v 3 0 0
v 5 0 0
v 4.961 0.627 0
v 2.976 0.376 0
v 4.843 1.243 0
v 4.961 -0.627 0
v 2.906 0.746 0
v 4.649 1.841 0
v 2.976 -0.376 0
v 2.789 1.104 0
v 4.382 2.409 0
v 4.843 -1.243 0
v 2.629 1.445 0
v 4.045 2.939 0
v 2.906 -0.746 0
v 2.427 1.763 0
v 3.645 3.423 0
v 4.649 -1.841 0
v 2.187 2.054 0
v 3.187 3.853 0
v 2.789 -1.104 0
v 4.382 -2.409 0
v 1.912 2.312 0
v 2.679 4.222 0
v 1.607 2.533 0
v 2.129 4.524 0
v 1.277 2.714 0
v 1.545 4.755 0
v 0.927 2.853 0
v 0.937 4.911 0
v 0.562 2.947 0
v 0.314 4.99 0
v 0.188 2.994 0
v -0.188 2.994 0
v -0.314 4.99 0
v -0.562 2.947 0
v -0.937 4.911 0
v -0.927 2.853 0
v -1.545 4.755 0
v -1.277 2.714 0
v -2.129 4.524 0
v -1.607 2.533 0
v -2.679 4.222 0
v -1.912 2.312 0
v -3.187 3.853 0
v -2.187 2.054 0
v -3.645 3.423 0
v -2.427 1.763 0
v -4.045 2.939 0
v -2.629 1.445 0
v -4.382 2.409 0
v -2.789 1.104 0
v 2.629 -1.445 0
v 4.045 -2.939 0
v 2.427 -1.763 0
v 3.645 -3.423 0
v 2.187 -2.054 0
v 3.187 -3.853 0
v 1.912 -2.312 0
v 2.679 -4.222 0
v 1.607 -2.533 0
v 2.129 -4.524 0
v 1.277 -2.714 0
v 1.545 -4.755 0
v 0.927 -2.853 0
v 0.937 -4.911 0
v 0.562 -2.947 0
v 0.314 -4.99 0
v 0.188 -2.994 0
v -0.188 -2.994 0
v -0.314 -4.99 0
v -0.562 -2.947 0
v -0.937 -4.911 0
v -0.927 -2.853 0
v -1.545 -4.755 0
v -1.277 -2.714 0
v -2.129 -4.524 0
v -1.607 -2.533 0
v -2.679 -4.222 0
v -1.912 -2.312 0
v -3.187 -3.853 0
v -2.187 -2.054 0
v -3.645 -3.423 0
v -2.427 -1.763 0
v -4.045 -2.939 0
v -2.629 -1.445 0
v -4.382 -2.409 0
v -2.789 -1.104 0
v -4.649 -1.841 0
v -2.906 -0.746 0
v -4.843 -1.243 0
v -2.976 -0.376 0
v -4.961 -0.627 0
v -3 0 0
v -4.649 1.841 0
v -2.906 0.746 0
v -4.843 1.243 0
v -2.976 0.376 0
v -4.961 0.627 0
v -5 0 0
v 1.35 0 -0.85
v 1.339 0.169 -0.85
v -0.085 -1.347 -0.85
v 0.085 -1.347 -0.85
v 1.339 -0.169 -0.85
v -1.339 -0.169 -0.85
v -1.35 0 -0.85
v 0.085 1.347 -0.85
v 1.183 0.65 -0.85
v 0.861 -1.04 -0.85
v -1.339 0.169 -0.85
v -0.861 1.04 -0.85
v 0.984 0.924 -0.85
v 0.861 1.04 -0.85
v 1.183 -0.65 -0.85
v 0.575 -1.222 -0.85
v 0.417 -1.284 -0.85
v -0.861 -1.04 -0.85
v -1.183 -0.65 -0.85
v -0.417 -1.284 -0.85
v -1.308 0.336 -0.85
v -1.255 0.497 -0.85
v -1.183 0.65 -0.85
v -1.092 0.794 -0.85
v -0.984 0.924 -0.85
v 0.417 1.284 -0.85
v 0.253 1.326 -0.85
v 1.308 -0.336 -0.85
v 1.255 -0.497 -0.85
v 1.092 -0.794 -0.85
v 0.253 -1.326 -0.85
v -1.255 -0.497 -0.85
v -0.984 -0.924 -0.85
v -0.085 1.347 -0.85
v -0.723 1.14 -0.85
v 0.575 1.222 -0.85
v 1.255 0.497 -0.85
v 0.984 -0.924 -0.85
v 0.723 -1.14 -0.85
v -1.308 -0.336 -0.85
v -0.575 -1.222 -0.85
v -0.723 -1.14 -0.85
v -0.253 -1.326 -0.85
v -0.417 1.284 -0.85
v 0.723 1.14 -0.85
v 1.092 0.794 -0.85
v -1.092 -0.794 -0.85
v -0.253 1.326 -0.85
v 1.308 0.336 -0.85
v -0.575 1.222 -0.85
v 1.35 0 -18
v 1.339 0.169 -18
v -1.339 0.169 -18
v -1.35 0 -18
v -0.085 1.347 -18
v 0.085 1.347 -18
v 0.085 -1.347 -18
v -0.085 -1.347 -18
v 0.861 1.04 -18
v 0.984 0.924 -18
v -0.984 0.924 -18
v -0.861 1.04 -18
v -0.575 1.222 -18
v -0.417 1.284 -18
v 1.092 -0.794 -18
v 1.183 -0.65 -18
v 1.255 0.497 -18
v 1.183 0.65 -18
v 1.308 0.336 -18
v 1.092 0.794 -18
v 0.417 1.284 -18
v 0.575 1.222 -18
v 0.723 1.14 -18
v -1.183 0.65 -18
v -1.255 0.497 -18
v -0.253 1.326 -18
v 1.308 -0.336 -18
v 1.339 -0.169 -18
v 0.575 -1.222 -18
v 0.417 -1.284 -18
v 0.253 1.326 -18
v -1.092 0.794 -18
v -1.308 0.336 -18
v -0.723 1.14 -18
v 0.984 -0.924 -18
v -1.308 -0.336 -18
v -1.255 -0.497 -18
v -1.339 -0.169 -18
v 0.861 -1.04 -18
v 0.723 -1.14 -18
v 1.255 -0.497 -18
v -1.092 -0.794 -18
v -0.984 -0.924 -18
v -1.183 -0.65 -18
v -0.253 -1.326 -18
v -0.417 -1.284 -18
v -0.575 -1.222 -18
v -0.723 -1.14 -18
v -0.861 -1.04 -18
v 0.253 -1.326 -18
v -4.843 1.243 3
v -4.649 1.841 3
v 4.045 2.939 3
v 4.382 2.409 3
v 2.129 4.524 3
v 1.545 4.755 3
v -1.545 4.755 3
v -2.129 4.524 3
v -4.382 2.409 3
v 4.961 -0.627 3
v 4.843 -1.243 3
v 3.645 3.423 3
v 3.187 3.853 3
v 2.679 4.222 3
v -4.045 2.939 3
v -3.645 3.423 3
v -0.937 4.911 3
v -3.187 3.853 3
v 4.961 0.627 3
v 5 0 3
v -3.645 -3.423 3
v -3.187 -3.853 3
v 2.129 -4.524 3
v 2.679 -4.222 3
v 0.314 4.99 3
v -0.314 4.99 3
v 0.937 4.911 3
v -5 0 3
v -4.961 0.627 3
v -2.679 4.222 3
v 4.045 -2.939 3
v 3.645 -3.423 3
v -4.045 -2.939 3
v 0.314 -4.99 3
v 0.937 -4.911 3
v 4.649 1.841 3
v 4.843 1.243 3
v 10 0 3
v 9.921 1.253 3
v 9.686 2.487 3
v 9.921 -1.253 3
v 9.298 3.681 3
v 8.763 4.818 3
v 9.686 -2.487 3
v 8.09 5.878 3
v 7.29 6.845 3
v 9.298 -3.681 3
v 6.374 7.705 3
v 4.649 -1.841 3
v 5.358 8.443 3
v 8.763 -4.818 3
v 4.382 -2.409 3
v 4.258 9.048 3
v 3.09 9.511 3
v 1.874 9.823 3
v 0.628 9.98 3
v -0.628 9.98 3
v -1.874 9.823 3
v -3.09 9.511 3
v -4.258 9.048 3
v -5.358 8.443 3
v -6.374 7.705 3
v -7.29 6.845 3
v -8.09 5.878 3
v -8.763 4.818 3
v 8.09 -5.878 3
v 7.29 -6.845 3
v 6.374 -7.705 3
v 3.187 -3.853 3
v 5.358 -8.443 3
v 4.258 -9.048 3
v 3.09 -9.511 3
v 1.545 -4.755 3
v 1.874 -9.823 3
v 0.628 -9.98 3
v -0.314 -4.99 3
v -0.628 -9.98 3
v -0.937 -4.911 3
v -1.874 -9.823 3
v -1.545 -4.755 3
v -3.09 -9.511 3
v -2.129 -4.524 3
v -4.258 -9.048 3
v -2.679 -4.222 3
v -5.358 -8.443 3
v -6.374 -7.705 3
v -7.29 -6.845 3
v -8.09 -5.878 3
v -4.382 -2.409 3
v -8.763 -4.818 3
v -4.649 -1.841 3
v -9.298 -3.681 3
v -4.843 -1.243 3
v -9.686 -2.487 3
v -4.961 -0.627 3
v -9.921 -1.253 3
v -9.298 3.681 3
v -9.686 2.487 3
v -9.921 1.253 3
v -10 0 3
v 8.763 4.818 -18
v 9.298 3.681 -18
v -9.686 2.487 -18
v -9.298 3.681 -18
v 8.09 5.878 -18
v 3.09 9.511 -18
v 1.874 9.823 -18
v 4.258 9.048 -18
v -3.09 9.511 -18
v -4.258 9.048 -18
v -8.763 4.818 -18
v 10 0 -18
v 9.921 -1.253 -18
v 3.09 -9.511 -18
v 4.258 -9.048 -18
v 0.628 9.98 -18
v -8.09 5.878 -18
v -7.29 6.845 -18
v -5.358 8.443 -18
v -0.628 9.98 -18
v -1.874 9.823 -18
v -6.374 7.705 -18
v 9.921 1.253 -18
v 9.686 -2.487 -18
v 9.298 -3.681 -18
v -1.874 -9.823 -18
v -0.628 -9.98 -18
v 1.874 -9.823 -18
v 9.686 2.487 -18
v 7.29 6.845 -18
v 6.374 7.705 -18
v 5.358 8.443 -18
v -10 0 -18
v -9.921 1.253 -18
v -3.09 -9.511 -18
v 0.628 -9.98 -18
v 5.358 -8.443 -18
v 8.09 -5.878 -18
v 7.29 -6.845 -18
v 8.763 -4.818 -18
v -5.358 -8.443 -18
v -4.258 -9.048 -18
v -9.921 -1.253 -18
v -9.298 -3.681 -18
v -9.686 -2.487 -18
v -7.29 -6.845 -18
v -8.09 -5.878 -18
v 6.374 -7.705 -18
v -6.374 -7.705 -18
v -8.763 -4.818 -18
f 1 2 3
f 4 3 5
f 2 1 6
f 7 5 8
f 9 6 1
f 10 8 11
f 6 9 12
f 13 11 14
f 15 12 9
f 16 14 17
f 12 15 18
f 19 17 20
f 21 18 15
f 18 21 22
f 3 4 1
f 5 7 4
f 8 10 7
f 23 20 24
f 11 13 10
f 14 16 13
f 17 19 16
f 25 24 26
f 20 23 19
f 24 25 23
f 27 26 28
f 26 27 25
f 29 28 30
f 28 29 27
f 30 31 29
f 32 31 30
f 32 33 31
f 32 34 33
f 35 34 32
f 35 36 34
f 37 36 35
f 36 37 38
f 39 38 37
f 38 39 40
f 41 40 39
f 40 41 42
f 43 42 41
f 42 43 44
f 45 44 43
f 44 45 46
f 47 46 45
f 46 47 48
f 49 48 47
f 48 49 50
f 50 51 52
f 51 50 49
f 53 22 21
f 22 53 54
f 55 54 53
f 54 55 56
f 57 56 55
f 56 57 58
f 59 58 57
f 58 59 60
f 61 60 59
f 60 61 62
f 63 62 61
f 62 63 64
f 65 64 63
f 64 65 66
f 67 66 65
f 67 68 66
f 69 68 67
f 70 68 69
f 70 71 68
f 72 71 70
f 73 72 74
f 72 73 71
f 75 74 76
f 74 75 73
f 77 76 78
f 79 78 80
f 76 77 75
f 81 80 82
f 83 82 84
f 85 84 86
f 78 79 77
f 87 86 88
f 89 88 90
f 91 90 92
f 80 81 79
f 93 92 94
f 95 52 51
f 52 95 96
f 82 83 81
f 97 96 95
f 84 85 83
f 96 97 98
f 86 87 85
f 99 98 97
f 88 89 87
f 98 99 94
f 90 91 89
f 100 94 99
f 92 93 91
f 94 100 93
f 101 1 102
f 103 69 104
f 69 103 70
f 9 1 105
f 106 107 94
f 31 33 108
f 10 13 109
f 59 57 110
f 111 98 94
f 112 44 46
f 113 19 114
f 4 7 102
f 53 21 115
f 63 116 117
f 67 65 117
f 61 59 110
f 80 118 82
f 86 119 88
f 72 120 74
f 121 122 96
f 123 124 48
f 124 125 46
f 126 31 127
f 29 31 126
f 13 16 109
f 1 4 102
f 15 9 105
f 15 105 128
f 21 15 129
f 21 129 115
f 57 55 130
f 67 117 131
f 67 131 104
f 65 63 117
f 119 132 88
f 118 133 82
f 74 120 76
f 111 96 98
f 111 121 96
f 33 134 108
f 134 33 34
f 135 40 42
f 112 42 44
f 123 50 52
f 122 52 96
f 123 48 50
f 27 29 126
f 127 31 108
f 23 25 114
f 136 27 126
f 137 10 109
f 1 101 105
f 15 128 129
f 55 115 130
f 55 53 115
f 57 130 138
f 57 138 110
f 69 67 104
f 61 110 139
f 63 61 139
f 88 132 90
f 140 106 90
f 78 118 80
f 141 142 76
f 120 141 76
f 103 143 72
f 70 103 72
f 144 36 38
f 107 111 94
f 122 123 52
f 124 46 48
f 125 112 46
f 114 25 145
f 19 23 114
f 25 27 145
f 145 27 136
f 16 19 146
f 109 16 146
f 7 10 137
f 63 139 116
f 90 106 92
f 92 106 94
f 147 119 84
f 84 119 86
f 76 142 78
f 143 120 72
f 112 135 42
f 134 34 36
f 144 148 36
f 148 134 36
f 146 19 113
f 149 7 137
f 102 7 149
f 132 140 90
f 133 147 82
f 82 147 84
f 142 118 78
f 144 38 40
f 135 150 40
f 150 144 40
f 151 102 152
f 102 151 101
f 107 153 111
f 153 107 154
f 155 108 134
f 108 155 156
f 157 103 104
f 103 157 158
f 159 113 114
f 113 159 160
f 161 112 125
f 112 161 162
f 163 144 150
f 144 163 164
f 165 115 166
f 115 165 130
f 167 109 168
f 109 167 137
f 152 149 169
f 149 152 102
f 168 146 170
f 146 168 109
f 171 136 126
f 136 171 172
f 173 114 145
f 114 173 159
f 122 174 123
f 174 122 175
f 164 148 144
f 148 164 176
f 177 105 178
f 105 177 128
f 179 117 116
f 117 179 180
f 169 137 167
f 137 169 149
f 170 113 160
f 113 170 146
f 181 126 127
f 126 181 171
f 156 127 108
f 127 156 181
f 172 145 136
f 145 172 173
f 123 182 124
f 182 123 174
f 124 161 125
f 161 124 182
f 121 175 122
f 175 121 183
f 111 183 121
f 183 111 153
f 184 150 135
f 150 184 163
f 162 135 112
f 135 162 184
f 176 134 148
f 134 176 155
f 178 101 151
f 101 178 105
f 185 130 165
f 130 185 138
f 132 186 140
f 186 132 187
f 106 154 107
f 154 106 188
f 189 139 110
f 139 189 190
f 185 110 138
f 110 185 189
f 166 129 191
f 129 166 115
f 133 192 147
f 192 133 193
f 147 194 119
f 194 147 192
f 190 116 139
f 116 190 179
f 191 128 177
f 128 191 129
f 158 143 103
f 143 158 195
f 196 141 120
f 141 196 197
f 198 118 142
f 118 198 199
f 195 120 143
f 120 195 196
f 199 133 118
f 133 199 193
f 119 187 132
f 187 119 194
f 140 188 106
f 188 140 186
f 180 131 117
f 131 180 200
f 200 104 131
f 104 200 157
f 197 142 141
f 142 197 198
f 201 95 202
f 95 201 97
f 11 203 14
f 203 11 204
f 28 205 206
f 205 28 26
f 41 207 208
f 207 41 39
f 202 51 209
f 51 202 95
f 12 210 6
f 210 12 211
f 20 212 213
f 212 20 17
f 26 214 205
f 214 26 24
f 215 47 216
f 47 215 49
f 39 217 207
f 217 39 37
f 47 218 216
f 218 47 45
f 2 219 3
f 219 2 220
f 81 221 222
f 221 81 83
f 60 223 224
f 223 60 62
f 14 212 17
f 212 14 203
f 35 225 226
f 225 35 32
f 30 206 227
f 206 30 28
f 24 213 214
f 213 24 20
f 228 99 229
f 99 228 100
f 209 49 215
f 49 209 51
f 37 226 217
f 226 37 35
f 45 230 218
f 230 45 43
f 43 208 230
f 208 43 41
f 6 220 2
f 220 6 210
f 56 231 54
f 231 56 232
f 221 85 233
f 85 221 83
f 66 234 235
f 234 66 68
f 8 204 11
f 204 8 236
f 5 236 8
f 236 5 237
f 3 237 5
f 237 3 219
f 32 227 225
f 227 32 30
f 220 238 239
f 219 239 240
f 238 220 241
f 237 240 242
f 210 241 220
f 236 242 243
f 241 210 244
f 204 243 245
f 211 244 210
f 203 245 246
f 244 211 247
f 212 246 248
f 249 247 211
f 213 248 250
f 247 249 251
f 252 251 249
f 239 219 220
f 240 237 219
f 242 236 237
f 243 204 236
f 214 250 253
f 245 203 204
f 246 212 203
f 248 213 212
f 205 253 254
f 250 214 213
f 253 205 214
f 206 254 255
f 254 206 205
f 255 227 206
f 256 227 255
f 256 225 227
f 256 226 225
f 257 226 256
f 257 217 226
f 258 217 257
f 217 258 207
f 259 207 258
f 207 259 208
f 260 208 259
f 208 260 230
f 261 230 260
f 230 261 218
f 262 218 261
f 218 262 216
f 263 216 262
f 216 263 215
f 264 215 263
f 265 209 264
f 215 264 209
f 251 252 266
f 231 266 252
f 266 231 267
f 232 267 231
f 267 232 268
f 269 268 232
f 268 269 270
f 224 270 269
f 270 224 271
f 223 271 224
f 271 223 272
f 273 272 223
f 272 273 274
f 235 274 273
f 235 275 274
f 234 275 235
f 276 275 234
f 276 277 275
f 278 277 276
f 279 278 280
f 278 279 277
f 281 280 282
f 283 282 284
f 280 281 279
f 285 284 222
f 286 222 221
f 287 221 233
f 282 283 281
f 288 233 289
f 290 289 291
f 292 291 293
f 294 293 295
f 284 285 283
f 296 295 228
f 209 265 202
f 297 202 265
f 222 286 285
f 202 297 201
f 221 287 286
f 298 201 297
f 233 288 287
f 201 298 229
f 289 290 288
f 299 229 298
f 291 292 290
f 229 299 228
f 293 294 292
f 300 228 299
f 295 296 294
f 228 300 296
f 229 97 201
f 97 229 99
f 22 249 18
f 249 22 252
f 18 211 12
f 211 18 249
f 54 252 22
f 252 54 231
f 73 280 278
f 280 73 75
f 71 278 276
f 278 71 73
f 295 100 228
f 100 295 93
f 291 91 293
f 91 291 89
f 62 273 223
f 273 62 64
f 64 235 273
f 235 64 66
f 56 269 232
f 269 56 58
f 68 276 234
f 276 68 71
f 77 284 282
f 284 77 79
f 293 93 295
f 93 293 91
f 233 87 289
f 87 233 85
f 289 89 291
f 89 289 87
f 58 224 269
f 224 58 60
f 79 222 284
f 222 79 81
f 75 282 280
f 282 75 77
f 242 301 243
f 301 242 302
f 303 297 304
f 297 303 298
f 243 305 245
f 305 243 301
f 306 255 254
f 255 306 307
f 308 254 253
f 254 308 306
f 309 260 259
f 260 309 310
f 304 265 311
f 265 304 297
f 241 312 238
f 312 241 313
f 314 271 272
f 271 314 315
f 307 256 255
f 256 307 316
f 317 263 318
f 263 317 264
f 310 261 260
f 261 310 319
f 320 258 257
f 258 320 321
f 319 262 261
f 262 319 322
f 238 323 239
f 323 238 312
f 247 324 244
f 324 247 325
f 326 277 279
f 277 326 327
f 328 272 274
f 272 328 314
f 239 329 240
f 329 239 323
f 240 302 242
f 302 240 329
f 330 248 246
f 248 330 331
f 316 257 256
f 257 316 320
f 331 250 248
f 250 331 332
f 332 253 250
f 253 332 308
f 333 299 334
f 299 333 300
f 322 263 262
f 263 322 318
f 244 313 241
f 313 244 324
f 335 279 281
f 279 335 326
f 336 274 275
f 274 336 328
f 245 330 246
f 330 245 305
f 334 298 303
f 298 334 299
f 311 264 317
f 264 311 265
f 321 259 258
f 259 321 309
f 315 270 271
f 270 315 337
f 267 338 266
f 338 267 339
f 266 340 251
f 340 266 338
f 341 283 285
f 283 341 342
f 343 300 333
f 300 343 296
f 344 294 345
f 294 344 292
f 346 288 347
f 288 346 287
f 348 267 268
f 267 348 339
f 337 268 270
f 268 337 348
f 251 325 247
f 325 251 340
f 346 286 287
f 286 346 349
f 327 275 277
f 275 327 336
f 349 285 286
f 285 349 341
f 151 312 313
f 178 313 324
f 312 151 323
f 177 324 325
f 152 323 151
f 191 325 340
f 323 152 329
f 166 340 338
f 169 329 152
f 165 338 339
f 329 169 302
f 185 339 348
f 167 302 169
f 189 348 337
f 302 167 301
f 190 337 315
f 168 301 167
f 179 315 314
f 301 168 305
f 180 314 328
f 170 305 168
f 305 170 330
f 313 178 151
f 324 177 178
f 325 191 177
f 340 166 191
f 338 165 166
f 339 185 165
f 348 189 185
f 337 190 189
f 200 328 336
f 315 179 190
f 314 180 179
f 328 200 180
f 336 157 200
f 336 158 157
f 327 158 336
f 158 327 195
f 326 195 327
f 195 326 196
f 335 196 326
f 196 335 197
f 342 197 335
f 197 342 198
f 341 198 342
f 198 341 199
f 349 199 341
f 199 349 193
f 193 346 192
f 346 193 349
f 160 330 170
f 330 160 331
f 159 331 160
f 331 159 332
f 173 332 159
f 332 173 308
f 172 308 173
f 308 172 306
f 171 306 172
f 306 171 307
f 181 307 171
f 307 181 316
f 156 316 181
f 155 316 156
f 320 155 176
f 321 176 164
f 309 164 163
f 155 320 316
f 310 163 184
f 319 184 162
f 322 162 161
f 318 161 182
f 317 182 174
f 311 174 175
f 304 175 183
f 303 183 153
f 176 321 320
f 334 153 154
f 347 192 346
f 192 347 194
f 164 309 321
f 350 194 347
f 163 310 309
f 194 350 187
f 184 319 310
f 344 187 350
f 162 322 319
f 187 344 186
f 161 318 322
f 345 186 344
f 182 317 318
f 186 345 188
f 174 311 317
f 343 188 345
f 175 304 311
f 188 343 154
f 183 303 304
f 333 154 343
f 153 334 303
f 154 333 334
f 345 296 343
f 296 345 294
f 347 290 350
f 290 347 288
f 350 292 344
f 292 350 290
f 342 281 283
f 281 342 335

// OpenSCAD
$fn = 50;


difference() {
	union() {
		translate(v = [0, 0, -18.0000000000]) {
			cylinder(h = 21, r = 10.0000000000);
		}
	}
	union() {
		translate(v = [0, 0, 0]) {
			rotate(a = [0, 0, 0]) {
				difference() {
					union() {
						translate(v = [0, 0, -21.0000000000]) {
							cylinder(h = 21, r = 1.0000000000);
						}
						translate(v = [0, 0, -0.8500000000]) {
							cylinder(h = 0.8500000000, r1 = 1.3500000000, r2 = 3.0000000000);
						}
						translate(v = [0, 0, -21.0000000000]) {
							cylinder(h = 21, r = 1.3500000000);
						}
						translate(v = [0, 0, -21.0000000000]) {
							cylinder(h = 21, r = 1.0000000000);
						}
					}
					union();
				}
			}
		}
		#cylinder(h = 3, r = 5.0000000000);
	}
}
